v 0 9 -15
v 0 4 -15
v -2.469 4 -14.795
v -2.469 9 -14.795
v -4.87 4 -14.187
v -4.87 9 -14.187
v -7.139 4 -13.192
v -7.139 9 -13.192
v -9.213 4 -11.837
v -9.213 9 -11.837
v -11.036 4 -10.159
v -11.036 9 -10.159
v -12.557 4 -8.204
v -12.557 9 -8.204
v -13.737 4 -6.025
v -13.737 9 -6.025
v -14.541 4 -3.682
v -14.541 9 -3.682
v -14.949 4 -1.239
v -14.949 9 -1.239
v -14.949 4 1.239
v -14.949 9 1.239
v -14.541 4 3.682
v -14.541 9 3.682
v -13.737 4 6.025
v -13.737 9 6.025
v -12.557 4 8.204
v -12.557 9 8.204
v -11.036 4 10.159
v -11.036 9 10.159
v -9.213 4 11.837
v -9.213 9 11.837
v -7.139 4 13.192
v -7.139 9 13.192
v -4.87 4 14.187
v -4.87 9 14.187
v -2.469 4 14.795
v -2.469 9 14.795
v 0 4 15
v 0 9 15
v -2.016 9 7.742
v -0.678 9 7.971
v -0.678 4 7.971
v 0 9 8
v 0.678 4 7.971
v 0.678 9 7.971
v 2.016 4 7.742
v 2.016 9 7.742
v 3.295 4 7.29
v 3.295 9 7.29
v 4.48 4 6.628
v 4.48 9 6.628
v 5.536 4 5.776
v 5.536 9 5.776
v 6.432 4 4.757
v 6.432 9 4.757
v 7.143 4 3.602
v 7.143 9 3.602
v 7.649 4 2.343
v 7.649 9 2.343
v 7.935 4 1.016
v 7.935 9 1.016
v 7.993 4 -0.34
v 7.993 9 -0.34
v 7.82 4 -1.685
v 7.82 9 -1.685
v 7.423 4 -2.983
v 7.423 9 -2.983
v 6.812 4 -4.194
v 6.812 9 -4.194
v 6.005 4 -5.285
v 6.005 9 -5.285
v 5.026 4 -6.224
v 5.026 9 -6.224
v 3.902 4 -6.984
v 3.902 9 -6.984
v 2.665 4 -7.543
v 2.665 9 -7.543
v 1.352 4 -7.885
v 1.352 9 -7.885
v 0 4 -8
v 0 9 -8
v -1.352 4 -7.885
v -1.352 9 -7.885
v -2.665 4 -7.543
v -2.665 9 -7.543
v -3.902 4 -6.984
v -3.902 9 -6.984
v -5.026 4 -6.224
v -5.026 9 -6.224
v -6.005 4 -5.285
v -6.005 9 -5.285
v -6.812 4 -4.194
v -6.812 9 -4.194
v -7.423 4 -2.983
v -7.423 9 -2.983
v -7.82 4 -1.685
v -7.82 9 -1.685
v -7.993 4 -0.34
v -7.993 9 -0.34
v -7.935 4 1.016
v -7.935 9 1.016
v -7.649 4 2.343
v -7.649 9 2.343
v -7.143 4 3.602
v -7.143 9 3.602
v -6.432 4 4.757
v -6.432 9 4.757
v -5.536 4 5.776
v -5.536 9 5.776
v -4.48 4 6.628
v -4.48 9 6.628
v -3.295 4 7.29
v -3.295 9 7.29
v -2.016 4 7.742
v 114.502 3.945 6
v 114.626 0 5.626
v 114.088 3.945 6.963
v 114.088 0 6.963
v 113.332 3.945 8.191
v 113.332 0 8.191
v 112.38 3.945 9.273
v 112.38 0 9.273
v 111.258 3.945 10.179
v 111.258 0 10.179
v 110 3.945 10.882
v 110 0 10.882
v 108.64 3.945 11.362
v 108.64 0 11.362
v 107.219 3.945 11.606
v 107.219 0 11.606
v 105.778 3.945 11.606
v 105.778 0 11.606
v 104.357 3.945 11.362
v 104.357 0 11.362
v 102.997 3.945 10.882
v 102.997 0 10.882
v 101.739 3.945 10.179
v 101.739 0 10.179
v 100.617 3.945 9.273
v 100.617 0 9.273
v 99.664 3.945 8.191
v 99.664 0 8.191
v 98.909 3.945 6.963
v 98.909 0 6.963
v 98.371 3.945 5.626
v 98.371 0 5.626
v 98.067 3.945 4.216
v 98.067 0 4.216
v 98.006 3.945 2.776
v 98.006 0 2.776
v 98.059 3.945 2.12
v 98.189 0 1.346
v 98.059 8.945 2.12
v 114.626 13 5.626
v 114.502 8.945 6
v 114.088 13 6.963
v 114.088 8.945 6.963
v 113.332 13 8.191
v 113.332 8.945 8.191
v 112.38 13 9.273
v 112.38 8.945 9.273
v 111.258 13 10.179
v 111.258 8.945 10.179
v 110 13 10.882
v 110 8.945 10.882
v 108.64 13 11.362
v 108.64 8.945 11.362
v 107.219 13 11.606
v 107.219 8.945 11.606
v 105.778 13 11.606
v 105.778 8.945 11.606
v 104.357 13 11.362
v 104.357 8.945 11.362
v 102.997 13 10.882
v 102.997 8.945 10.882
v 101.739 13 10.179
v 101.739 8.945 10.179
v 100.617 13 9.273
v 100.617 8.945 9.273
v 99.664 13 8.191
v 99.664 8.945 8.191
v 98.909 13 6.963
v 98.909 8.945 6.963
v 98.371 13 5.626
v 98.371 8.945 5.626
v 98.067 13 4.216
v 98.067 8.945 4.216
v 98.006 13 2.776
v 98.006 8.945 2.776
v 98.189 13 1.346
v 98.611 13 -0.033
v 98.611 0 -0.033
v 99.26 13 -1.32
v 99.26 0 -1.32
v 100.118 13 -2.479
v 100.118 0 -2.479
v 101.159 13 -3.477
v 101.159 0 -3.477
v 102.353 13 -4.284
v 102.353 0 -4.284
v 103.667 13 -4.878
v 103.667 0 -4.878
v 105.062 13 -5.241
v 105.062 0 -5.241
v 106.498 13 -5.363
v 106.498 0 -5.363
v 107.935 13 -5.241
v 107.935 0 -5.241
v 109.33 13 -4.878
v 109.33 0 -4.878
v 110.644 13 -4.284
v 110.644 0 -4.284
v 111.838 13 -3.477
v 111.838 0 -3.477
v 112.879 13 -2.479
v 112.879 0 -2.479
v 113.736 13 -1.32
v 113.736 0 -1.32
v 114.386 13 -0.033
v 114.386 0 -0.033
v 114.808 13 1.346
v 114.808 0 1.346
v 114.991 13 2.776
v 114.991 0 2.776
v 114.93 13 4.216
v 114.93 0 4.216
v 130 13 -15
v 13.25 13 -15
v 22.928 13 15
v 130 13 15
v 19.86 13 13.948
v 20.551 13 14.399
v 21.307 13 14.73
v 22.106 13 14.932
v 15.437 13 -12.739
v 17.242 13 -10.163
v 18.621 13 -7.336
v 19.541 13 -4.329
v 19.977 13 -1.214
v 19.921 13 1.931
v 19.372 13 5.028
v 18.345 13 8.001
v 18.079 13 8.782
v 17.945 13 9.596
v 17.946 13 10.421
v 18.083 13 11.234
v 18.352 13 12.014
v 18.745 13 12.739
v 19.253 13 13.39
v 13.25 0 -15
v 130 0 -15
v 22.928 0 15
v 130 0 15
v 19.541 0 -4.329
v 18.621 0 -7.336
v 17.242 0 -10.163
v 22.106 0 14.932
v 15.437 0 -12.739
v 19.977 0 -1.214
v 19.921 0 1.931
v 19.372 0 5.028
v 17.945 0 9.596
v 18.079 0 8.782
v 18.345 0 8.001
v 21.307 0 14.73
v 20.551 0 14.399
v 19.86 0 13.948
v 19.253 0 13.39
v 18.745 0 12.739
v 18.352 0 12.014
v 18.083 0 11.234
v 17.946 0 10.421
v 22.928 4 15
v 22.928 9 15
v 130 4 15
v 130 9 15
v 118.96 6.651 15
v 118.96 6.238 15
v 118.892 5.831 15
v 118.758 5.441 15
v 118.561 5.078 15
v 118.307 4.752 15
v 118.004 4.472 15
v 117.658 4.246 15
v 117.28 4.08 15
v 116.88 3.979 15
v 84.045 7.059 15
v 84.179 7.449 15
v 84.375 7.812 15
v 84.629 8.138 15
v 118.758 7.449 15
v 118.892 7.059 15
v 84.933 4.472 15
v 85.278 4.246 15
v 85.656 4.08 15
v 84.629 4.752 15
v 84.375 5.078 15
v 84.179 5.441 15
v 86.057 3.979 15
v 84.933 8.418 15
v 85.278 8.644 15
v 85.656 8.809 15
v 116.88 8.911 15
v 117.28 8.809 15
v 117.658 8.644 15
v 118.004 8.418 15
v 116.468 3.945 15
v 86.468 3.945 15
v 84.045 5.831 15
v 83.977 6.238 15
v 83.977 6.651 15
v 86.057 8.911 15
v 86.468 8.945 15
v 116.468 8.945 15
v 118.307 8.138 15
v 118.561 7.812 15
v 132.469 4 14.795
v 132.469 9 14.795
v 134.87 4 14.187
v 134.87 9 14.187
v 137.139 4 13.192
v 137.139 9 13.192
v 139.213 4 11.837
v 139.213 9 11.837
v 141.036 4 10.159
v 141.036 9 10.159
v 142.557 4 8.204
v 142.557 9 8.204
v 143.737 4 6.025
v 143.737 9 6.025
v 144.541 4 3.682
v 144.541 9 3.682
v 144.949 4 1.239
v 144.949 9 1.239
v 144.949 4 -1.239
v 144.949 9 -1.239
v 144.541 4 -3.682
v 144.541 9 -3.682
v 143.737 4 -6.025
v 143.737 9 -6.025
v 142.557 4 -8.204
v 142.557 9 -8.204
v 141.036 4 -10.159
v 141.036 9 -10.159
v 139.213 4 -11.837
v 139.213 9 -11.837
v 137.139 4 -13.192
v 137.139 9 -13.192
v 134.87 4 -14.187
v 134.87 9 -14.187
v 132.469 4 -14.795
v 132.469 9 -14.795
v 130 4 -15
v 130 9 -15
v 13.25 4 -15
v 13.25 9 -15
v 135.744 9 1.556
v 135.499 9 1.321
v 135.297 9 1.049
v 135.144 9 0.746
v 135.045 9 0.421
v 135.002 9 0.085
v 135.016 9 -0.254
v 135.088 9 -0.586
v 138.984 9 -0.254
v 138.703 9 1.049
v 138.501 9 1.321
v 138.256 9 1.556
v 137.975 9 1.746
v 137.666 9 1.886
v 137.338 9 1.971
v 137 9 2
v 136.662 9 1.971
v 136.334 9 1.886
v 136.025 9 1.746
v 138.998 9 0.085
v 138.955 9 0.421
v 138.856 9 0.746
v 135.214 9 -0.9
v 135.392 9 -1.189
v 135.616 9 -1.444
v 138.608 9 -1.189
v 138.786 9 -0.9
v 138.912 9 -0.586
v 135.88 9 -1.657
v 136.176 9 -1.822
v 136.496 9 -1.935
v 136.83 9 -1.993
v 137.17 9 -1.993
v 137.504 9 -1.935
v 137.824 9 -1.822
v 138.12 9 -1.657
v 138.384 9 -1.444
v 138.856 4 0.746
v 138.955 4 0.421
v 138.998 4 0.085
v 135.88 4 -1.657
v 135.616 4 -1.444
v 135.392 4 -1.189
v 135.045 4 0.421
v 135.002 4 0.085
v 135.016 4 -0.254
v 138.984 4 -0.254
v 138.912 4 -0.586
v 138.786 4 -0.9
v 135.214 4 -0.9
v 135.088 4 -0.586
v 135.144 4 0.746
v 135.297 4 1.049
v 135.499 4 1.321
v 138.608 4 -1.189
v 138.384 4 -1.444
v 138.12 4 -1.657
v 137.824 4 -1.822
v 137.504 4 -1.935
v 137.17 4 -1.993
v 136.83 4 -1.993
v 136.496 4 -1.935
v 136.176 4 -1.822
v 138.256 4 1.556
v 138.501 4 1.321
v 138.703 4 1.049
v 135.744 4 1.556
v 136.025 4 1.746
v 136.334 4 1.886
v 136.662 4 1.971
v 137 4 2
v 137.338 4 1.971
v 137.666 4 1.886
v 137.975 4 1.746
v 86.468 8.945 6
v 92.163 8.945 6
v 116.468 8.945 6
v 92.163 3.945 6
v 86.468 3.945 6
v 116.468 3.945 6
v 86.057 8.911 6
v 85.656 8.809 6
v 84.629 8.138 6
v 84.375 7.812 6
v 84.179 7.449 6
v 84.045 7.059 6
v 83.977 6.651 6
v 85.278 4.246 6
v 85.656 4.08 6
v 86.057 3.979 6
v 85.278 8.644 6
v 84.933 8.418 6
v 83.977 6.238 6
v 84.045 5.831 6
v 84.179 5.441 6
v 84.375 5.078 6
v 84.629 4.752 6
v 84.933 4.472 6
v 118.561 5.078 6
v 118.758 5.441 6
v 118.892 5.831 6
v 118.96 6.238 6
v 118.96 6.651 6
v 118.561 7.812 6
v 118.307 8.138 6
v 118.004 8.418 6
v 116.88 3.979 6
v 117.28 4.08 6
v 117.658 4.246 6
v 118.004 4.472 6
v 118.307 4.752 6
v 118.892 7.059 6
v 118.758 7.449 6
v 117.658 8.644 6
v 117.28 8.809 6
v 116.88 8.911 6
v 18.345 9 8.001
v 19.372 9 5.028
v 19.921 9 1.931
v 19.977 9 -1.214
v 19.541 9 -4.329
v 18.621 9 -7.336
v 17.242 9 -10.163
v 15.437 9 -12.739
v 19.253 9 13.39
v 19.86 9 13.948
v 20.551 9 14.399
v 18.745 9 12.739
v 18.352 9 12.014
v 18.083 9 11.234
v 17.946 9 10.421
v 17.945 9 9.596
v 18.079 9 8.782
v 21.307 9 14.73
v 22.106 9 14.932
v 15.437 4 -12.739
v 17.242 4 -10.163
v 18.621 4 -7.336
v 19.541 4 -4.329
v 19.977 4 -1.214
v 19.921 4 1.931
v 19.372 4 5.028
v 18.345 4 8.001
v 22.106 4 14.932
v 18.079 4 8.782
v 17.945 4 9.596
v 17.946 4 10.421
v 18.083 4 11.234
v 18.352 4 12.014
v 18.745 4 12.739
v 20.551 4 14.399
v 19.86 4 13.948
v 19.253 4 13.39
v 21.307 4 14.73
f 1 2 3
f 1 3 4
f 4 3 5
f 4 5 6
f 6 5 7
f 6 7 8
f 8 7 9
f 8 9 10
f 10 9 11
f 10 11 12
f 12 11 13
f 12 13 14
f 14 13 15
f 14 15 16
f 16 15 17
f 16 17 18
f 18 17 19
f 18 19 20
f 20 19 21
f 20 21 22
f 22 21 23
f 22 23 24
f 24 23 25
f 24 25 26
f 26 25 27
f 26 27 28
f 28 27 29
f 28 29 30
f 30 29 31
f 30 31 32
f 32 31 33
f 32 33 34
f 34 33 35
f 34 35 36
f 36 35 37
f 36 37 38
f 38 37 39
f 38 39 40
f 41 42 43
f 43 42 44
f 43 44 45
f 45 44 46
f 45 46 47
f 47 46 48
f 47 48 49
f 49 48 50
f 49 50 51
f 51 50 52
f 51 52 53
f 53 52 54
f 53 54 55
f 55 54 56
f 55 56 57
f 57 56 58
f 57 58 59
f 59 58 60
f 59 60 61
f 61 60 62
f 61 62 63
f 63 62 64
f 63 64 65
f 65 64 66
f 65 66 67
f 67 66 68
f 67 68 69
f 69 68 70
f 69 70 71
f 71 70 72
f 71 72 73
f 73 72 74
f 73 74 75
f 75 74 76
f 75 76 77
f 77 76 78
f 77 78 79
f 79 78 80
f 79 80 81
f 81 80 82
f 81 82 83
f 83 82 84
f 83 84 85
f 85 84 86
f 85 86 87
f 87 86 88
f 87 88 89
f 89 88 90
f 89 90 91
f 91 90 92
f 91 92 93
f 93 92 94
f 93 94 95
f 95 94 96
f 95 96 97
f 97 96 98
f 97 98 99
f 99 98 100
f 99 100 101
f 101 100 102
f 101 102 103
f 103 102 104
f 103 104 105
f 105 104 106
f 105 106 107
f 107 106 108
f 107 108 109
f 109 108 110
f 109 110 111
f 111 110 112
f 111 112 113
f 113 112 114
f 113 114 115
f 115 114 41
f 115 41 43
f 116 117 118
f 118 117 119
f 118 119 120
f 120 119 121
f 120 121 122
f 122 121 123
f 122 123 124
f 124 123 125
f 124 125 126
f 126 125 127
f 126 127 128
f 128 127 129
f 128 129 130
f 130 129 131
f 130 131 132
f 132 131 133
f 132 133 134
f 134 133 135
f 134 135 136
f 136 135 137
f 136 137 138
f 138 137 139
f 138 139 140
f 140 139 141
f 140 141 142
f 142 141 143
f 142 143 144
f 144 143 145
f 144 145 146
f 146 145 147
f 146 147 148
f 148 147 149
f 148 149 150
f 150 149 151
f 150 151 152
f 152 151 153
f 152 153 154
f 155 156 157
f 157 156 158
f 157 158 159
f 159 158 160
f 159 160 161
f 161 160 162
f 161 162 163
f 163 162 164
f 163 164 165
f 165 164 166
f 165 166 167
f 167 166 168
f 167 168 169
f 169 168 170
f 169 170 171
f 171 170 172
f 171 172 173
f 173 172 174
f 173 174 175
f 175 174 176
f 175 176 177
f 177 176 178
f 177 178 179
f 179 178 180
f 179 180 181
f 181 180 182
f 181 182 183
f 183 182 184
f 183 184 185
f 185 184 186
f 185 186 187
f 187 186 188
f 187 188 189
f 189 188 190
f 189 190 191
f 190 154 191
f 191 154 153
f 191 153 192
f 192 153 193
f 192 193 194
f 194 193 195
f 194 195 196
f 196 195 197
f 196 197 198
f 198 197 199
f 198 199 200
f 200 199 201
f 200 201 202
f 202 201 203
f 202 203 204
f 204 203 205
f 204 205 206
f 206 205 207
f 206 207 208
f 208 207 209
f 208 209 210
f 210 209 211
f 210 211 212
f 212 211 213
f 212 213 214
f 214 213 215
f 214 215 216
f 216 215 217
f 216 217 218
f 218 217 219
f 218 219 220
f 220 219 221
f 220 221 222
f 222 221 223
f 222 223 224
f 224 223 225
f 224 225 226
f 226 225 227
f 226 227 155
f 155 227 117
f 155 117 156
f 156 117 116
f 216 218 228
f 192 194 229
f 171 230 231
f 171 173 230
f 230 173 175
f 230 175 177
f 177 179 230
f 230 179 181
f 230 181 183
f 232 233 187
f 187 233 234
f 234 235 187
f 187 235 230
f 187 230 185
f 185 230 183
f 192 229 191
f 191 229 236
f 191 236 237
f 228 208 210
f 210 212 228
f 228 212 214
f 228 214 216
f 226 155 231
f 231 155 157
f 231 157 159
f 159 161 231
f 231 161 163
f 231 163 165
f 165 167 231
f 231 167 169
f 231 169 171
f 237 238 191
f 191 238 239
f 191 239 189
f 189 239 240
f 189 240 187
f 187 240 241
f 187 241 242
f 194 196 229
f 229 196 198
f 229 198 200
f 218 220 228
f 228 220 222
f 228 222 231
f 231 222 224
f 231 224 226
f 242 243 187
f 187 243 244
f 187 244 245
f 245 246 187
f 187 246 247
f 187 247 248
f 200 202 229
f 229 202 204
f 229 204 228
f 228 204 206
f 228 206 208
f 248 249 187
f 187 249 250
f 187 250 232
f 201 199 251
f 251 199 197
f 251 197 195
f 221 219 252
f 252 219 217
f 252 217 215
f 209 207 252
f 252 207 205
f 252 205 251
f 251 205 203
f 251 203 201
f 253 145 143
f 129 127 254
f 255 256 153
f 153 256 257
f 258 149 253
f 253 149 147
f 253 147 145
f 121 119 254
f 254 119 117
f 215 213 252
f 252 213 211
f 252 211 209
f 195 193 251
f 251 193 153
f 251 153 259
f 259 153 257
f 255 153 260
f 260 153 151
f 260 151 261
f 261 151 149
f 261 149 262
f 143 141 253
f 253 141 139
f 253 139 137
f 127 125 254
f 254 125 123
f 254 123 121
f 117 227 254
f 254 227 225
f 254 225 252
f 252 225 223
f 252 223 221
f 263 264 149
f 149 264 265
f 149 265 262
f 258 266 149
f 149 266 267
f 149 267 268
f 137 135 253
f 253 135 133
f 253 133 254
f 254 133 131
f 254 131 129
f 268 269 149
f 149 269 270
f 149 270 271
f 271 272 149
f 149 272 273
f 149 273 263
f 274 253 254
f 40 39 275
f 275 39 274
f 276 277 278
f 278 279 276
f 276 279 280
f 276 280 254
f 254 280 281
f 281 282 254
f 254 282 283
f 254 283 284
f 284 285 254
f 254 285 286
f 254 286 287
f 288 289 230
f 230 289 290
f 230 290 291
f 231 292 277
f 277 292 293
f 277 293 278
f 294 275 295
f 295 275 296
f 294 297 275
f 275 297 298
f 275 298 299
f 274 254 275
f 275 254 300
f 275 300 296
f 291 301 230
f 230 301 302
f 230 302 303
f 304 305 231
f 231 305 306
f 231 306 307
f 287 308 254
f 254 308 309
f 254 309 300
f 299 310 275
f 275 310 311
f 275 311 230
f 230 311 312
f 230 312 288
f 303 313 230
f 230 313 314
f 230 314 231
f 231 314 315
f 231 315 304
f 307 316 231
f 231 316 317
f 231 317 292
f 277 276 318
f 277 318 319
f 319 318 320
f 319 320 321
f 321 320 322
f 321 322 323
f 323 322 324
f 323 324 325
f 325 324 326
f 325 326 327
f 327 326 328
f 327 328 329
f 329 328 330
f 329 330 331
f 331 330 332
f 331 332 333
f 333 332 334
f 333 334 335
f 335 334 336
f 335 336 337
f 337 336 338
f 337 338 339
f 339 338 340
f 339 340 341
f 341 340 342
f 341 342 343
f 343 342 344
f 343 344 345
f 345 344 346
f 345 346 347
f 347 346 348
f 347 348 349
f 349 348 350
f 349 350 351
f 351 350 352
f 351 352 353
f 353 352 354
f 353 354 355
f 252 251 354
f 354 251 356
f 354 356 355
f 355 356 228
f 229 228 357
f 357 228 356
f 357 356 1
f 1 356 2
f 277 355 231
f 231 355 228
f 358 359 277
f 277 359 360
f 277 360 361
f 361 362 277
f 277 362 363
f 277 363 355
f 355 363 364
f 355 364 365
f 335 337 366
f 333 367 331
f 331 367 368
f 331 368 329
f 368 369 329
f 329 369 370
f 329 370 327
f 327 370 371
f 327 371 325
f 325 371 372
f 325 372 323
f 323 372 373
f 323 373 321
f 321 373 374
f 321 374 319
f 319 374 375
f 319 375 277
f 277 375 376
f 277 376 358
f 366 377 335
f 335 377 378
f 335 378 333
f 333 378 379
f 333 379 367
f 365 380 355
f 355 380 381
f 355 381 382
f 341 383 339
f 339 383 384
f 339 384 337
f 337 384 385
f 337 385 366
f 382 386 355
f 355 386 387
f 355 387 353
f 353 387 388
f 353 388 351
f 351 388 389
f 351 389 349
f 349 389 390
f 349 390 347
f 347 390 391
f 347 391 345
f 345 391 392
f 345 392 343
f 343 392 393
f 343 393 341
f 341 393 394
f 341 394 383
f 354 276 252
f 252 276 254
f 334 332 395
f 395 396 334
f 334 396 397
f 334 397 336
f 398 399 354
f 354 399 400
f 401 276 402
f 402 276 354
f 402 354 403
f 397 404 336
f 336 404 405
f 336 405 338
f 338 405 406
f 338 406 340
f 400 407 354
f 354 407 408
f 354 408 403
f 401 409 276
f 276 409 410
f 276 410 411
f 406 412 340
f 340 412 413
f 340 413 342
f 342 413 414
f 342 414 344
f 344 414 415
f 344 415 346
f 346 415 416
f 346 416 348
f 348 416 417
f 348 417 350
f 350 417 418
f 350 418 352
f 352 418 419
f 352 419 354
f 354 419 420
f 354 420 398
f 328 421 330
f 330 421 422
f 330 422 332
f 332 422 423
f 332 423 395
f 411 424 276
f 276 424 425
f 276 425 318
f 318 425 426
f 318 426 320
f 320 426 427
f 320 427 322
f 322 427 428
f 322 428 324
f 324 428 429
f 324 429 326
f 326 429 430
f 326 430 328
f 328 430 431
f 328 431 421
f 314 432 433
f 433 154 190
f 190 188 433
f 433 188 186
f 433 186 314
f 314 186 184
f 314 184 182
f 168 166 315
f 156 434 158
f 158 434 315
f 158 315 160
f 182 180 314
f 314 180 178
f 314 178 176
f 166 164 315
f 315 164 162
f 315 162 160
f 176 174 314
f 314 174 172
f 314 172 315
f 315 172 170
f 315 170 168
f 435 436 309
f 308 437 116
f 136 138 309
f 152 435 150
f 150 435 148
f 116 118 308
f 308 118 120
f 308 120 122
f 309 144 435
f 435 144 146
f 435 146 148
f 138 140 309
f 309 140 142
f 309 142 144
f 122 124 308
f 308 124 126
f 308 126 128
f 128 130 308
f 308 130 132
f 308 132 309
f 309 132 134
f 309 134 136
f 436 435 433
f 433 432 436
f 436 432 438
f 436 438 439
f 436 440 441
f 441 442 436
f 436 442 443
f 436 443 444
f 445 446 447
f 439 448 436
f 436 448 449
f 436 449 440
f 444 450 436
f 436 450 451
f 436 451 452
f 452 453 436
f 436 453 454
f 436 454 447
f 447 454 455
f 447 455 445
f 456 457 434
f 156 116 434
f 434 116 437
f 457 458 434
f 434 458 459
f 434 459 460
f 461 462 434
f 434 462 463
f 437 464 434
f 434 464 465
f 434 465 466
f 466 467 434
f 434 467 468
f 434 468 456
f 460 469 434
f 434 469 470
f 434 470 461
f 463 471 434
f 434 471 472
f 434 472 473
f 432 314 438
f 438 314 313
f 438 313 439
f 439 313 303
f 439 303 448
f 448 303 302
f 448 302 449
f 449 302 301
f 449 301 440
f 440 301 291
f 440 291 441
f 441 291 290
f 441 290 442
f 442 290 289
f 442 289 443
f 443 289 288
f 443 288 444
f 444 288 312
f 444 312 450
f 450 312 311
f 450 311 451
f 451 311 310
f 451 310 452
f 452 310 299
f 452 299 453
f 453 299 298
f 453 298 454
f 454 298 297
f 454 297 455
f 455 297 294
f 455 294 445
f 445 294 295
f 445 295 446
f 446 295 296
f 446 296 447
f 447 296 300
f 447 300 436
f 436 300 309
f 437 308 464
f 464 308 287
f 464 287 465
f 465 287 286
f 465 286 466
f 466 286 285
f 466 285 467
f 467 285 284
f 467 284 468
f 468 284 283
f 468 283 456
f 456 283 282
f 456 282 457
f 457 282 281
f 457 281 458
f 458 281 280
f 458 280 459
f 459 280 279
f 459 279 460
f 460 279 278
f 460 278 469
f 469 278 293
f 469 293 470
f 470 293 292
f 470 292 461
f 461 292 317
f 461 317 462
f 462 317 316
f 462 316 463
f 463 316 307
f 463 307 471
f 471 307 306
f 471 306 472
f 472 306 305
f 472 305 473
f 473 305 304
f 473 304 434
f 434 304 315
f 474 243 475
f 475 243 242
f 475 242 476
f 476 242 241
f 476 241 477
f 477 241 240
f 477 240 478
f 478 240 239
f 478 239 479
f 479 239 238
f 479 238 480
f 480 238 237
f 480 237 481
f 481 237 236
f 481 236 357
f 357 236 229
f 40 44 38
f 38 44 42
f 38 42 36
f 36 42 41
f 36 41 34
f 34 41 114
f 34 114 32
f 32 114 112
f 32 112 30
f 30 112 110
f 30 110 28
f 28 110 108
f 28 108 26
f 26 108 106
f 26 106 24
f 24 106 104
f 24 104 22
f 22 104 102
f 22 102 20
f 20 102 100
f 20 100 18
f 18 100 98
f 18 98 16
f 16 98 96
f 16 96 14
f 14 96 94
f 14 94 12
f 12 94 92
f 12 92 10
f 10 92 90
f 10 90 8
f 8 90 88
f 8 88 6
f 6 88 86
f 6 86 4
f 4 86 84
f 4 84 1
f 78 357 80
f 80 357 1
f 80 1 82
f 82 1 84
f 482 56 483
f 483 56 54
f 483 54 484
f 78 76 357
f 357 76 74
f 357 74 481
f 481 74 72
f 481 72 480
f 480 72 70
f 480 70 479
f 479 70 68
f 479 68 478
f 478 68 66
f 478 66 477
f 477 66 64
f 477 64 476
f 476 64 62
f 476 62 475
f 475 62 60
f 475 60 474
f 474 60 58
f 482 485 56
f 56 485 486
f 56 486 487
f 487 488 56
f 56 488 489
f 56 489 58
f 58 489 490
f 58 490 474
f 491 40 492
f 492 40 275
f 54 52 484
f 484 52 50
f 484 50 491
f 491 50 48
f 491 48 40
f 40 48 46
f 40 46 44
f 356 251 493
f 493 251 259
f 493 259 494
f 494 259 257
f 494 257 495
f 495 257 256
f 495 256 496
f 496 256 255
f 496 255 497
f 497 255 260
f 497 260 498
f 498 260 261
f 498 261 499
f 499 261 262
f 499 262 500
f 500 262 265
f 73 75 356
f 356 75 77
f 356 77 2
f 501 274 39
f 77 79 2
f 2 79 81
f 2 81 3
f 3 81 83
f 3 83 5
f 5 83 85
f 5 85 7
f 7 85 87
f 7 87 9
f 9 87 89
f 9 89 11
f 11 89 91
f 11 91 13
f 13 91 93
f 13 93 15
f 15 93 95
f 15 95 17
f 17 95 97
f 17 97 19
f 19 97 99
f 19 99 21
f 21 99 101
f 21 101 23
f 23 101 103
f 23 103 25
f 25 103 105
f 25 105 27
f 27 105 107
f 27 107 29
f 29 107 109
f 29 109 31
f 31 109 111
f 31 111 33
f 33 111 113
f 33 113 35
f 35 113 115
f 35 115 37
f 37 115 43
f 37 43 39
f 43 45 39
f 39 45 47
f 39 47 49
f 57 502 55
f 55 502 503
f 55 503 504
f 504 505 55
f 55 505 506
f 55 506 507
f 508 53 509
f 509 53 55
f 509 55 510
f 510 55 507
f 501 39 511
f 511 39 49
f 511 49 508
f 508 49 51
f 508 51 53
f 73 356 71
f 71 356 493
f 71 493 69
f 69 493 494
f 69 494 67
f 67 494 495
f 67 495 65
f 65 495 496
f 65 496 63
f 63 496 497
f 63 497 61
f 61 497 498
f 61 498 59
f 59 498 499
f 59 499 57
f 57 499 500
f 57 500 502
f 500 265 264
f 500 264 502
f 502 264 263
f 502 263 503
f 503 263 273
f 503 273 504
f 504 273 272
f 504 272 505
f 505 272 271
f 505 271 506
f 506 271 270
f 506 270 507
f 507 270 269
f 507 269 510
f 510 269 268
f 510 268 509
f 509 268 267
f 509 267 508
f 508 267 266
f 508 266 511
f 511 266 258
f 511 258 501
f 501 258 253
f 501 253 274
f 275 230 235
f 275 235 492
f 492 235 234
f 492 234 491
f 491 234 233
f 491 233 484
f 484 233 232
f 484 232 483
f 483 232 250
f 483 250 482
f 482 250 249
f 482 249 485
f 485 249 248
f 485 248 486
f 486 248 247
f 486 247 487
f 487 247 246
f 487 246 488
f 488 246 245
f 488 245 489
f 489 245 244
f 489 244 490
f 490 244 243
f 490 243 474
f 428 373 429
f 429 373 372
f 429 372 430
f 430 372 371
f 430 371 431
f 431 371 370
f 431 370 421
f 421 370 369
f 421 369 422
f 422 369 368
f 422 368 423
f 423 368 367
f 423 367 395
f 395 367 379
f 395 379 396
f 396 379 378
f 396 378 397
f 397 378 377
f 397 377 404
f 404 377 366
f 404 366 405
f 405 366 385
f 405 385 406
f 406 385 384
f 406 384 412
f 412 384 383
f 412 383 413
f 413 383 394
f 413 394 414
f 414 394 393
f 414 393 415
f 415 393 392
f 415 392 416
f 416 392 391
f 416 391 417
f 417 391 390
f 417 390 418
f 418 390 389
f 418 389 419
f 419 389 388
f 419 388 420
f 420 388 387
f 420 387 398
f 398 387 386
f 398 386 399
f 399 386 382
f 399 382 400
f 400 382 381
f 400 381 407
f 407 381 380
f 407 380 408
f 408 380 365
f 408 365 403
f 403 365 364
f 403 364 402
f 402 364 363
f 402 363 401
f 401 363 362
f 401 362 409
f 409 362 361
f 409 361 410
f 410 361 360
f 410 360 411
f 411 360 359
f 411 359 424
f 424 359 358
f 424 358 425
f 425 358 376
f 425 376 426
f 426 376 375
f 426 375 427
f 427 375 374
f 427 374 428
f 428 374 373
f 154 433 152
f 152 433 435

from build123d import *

# Parameters (mm, degrees)
MAIN_R              = 8
BOSS_EXTRUDE1_DEPTH = 13
CUT_EXTRUDE5_START  = -4
CUT_EXTRUDE5_DEPTH  = 4
CUT_EXTRUDE6_DEPTH  = 4
JOINT_HOLE_R        = 8.5
CUT_EXTRUDE7_DEPTH  = 13
CUT_EXTRUDE8_DEPTH  = 9
SKETCH9_R           = 20.014179858
CUT_EXTRUDE9_DEPTH  = 4
CUT_EXTRUDE10_START = -4
SKETCH10_R          = 20.014179858
CUT_EXTRUDE10_DEPTH = 4
FILLET1_R           = 5
FILLET2_R           = 5
CUT_EXTRUDE11_DEPTH = 5
CHAMFER1_START      = 3.94488544
CHAMFER1_DEPTH      = 5


with BuildPart() as part:
    # main → Boss-Extrude1 (new body)
    with BuildSketch(Plane(origin=(0, 0, 0), x_dir=(1, 0, 0), z_dir=(0, 1, 0))):
        with BuildLine():
            Line((0, 15), (130, 15))
            ThreePointArc((130, 15), (145, 0), (130, -15))
            Line((130, -15), (0, -15))
            ThreePointArc((0, -15), (-15, 0), (0, 15))
        make_face()
        with Locations(Location((0, 0, 0), (0, 0, 270))):
            Circle(MAIN_R, mode=Mode.SUBTRACT)
    extrude(amount=BOSS_EXTRUDE1_DEPTH)

    # Sketch5 → Cut-Extrude5 (cut)
    with BuildSketch(Plane(origin=(0, 13, 0), x_dir=(1, 0, 0), z_dir=(0, 1, 0)).offset(CUT_EXTRUDE5_START)):
        with BuildLine():
            Line((130, 15), (130, -15))
            ThreePointArc((130, -15), (145, 0), (130, 15))
        make_face()
    extrude(amount=CUT_EXTRUDE5_DEPTH, mode=Mode.SUBTRACT)

    # Sketch6 → Cut-Extrude6 (cut)
    with BuildSketch(Plane.XZ):
        with BuildLine():
            Line((130, 15), (130, -15))
            ThreePointArc((130, -15), (145, 0), (130, 15))
        make_face()
    extrude(amount=-CUT_EXTRUDE6_DEPTH, mode=Mode.SUBTRACT)

    # joint hole → Cut-Extrude7 (cut)
    with BuildSketch(Plane.XZ):
        with Locations(Location((106.49845917, 3.136605167, 0), (0, 0, 270))):
            Circle(JOINT_HOLE_R)
    extrude(amount=-CUT_EXTRUDE7_DEPTH, mode=Mode.SUBTRACT)

    # cut_out joint → Cut-Extrude8 (cut)
    with BuildSketch(Plane.XY.offset(15)):
        with BuildLine():
            Line((86.468116833, 8.94488544), (116.468116833, 8.94488544))
            ThreePointArc((116.468116833, 8.94488544), (118.968116833, 6.44488544), (116.468116833, 3.94488544))
            Line((116.468116833, 3.94488544), (86.468116833, 3.94488544))
            ThreePointArc((86.468116833, 3.94488544), (83.968116833, 6.44488544), (86.468116833, 8.94488544))
        make_face()
    extrude(amount=-CUT_EXTRUDE8_DEPTH, mode=Mode.SUBTRACT)

    # Sketch9 → Cut-Extrude9 (cut)
    with BuildSketch(Plane(origin=(0, 13, 0), x_dir=(1, 0, 0), z_dir=(0, 1, 0))):
        Circle(SKETCH9_R)
    extrude(amount=-CUT_EXTRUDE9_DEPTH, mode=Mode.SUBTRACT)

    # Sketch10 → Cut-Extrude10 (cut)
    with BuildSketch(Plane.XZ.offset(CUT_EXTRUDE10_START)):
        Circle(SKETCH10_R)
    extrude(amount=CUT_EXTRUDE10_DEPTH, mode=Mode.SUBTRACT)

    # Fillet1
    fillet1_edges = [part.edges().sort_by_distance(p)[0] for p in [
        (13.25018473, 2, 15),
    ]]
    fillet(fillet1_edges, radius=FILLET1_R)

    # Fillet2
    fillet2_edges = [part.edges().sort_by_distance(p)[0] for p in [
        (13.25018473, 11, 15),
    ]]
    fillet(fillet2_edges, radius=FILLET2_R)

    # Sketch11 → Cut-Extrude11 (cut)
    with BuildSketch(Plane(origin=(0, 9, 0), x_dir=(1, 0, 0), z_dir=(0, 1, 0))):
        with BuildLine():
            ThreePointArc((136.154229069, 1.81236628), (135, 0), (136.154229069, -1.81236628))
            Line((136.154229069, -1.81236628), (137, 0))
            Line((137, 0), (136.154229069, 1.81236628))
        make_face()
        with BuildLine():
            Line((137, 0), (136.154229069, -1.81236628))
            ThreePointArc((136.154229069, -1.81236628), (138.074350534, -1.686941294), (139, 0))
            ThreePointArc((139, 0), (138.074350534, 1.686941294), (136.154229069, 1.81236628))
            Line((136.154229069, 1.81236628), (137, 0))
        make_face()
    extrude(amount=-CUT_EXTRUDE11_DEPTH, mode=Mode.SUBTRACT)

    # Chamfer1: read off the stored shape, not the designer's step
    # Chamfer1 outline → Chamfer1 (cut)
    with BuildSketch(Plane(origin=(0, 0, 0), x_dir=(1, 0, 0), z_dir=(0, 1, 0)).offset(CHAMFER1_START)):
        with BuildLine():
            Line((98.059452794, -2.120154778), (92.162759821, -6))
            Line((92.162759821, -6), (98.495274177, -6))
            ThreePointArc((98.495274177, -6), (98.05158318, -4.085439196), (98.059452794, -2.120154778))
        make_face()
    extrude(amount=CHAMFER1_DEPTH, mode=Mode.SUBTRACT)


solid = part.part
